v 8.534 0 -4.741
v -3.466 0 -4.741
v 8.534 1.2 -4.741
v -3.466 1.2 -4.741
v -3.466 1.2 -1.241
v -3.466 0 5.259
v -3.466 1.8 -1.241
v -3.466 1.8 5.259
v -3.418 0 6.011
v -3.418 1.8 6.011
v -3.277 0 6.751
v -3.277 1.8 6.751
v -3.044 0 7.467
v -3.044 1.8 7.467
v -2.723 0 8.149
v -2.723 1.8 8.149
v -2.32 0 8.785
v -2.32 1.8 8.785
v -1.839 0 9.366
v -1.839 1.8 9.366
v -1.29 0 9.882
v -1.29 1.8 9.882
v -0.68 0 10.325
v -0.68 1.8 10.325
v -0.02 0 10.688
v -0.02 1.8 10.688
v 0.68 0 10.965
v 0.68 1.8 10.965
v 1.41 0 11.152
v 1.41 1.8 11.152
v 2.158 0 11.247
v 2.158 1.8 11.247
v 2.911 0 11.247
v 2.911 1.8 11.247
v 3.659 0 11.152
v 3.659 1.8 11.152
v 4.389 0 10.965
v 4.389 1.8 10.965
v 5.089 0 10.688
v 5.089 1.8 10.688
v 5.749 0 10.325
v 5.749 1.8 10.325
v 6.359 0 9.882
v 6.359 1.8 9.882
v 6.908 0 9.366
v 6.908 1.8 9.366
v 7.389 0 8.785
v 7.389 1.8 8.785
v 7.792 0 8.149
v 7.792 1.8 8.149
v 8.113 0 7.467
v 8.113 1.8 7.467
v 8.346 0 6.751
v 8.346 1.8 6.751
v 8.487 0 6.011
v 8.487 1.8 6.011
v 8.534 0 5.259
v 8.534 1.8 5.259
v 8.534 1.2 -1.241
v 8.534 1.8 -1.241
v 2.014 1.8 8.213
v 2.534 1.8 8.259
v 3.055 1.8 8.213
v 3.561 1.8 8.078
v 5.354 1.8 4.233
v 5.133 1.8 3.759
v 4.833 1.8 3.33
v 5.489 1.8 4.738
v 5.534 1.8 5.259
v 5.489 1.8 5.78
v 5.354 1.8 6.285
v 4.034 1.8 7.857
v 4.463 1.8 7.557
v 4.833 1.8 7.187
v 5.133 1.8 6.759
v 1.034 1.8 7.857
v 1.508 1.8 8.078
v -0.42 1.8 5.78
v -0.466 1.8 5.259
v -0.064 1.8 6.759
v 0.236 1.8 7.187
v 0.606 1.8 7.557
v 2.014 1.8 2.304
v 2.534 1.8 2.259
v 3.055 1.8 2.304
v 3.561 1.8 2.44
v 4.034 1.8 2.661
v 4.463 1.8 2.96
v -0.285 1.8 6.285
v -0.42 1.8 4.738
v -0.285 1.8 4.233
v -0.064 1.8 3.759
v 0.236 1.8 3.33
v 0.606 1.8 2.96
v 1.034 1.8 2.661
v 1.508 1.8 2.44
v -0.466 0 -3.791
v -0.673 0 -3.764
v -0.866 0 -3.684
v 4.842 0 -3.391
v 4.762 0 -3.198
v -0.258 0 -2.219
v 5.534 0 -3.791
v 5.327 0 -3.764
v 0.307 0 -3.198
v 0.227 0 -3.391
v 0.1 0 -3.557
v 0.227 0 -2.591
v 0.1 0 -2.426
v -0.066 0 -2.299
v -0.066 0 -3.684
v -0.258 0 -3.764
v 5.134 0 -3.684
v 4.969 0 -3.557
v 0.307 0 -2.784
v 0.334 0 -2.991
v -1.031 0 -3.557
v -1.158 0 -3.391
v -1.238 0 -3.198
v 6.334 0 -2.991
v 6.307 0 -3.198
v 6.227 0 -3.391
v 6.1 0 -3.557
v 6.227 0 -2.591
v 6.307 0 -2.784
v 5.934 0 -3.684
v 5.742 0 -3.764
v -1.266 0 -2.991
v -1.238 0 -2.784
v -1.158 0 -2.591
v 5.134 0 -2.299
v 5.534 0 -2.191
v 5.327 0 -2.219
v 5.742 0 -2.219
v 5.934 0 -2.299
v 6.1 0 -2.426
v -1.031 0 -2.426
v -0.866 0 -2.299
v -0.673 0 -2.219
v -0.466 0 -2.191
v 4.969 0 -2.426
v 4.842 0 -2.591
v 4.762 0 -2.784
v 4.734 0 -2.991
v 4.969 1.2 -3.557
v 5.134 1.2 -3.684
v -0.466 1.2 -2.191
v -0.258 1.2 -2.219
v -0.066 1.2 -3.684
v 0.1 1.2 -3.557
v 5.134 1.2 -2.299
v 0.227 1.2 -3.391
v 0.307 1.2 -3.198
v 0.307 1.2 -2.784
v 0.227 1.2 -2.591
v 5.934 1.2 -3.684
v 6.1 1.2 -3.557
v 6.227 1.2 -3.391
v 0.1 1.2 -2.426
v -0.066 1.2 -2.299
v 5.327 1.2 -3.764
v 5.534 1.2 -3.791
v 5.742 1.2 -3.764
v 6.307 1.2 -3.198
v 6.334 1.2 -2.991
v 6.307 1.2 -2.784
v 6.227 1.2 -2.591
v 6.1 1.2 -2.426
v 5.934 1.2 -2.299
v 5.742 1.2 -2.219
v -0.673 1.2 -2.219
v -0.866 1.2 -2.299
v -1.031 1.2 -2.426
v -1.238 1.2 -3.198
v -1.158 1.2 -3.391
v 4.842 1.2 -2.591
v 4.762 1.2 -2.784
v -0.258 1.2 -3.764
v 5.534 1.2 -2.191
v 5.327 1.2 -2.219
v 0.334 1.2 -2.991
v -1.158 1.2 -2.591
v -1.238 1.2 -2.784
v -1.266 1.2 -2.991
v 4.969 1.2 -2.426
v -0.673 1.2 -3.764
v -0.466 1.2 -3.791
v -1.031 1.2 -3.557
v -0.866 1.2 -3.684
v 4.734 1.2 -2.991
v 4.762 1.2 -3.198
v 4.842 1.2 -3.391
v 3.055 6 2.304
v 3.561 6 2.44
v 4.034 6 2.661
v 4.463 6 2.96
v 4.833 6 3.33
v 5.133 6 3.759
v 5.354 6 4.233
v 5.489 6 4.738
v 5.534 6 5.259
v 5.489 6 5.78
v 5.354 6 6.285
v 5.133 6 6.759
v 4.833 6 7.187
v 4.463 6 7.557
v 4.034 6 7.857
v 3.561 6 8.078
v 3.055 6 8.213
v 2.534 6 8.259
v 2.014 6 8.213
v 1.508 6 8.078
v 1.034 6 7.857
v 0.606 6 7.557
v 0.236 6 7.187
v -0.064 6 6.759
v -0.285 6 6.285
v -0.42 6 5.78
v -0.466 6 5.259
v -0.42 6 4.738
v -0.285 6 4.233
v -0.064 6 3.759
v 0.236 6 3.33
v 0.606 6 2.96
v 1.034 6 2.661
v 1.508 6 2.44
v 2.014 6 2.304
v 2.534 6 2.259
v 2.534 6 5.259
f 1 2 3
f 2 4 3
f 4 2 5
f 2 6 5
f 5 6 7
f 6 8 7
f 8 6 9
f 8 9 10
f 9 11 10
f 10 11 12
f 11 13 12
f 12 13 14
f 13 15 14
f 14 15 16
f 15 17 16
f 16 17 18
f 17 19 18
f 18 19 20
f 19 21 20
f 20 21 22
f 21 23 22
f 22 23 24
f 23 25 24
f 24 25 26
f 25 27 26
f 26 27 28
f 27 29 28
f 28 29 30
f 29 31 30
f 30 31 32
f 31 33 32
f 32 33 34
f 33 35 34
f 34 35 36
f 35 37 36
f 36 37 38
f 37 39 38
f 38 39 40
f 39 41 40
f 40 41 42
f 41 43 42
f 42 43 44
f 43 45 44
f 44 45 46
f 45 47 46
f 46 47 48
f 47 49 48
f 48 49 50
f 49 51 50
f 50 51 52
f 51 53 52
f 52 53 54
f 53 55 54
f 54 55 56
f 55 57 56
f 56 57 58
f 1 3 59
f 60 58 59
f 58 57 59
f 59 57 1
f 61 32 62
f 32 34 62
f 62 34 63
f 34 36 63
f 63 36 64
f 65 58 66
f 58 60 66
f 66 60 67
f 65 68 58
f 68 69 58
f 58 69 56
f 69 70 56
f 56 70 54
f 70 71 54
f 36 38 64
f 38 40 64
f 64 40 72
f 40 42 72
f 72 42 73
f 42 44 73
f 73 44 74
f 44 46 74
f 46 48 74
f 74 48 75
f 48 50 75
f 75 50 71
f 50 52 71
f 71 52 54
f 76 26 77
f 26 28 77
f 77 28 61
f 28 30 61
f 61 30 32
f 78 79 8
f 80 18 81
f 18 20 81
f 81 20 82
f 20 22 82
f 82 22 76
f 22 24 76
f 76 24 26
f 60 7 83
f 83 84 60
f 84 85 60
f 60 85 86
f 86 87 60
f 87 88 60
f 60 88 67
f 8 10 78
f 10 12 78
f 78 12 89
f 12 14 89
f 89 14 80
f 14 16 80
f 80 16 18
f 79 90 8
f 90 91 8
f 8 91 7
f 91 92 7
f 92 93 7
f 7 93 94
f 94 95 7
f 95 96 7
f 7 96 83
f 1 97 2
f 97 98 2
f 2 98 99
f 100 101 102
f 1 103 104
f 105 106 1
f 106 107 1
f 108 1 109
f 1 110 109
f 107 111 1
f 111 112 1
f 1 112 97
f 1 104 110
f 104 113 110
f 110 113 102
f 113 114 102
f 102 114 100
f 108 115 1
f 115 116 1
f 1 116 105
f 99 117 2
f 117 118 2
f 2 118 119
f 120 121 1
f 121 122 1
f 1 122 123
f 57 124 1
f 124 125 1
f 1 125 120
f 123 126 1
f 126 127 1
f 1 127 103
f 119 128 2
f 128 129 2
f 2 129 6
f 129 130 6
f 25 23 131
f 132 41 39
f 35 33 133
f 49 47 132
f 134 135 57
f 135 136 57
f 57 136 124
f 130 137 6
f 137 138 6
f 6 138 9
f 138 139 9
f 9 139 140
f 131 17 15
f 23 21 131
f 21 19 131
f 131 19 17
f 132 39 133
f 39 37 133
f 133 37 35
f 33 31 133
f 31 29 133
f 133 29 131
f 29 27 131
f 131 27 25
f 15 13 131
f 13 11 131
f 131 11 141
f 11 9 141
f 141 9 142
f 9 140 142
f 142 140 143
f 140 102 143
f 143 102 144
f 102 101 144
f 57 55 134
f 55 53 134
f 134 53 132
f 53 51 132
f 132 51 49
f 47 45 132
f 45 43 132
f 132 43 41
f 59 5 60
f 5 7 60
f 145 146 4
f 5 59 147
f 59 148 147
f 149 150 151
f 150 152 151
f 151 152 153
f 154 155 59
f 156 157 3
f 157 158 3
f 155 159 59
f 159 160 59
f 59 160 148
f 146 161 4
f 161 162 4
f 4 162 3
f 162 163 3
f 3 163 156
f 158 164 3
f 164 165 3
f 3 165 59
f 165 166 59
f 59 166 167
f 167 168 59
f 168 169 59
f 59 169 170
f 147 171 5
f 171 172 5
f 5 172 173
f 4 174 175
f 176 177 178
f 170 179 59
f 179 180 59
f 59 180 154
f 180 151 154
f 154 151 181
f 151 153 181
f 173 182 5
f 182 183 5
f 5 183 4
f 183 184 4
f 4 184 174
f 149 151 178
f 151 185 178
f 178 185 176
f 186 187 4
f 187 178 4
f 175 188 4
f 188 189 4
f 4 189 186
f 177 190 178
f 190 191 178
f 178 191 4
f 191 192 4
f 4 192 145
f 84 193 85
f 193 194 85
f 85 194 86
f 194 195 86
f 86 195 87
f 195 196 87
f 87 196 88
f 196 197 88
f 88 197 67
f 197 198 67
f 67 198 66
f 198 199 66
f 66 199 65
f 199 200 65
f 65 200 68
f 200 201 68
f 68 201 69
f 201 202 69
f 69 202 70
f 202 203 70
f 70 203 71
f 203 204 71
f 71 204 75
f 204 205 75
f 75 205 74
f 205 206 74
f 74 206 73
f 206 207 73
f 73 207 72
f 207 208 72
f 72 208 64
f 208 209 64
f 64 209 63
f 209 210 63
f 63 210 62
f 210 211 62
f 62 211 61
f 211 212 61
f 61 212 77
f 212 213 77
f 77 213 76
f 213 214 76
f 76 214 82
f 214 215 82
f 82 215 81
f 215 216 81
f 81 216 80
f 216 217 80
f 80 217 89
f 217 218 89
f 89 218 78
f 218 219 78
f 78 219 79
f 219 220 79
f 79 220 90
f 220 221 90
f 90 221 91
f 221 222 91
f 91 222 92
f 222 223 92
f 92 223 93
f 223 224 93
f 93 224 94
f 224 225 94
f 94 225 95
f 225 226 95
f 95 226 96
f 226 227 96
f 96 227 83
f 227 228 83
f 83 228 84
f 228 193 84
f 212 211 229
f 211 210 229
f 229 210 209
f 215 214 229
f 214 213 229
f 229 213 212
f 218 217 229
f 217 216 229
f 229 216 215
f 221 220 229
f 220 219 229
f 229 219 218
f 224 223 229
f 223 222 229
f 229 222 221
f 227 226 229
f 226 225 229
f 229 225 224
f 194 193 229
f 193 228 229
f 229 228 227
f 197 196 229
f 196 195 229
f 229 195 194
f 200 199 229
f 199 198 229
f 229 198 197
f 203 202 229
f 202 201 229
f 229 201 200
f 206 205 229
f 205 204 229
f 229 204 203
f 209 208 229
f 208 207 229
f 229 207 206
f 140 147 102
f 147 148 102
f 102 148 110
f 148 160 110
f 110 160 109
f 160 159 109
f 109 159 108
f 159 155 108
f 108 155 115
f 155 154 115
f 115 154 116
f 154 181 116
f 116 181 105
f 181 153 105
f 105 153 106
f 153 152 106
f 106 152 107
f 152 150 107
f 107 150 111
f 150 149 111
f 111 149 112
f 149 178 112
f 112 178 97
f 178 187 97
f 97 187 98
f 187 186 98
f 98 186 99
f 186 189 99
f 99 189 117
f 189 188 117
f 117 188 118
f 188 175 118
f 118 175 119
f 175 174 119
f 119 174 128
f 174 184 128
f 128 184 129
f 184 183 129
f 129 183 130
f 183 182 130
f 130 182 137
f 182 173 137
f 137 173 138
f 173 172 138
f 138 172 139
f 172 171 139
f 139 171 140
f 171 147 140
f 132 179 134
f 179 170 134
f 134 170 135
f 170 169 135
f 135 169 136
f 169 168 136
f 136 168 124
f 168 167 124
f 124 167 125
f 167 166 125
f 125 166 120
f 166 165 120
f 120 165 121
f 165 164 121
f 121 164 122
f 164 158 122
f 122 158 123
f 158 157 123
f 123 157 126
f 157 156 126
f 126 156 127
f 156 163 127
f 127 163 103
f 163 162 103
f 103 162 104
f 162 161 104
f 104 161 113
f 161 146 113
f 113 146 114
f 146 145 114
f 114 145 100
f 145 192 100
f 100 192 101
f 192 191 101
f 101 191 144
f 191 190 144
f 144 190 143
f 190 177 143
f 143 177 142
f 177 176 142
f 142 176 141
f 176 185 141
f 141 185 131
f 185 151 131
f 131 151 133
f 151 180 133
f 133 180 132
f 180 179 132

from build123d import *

# Parameters (mm, degrees)
BOSS_EXTRUDE1_DEPTH = 1.8
SKETCH2_W           = 12
SKETCH2_H           = 3.5
CUT_EXTRUDE1_DEPTH  = 0.6
SKETCH3_R           = 3
BOSS_EXTRUDE2_DEPTH = 4.2
SKETCH4_R           = 0.8
CUT_EXTRUDE2_DEPTH  = 15.920922753


with BuildPart() as part:
    # Sketch1 → Boss-Extrude1 (new body)
    with BuildSketch(Plane(origin=(0, 0, 0), x_dir=(1, 0, 0), z_dir=(0, 1, 0))):
        with BuildLine():
            Line((-3.465517241, 4.74137931), (8.534482759, 4.74137931))
            Line((8.534482759, 4.74137931), (8.534482759, -5.25862069))
            ThreePointArc((8.534482759, -5.25862069), (2.534482759, -11.25862069), (-3.465517241, -5.25862069))
            Line((-3.465517241, -5.25862069), (-3.465517241, 4.74137931))
        make_face()
    extrude(amount=BOSS_EXTRUDE1_DEPTH)

    # Sketch2 → Cut-Extrude1 (cut)
    with BuildSketch(Plane(origin=(0, 1.8, 0), x_dir=(1, 0, 0), z_dir=(0, 1, 0))):
        with Locations((2.534482759, 2.99137931)):
            Rectangle(SKETCH2_W, SKETCH2_H)
    extrude(amount=-CUT_EXTRUDE1_DEPTH, mode=Mode.SUBTRACT)

    # Sketch3 → Boss-Extrude2 (add)
    with BuildSketch(Plane(origin=(0, 1.8, 0), x_dir=(1, 0, 0), z_dir=(0, 1, 0))):
        with Locations(Location((2.534482759, -5.25862069, 0), (0, 0, 270))):
            Circle(SKETCH3_R)
    extrude(amount=BOSS_EXTRUDE2_DEPTH)

    # Sketch4 → Cut-Extrude2 (cut, through all)
    with BuildSketch(Plane(origin=(0, 1.2, 0), x_dir=(1, 0, 0), z_dir=(0, 1, 0))):
        with Locations(Location((5.534482759, 2.99137931, 0), (0, 0, 270))):
            Circle(SKETCH4_R)
        with Locations(Location((-0.465517241, 2.99137931, 0), (0, 0, 90))):
            Circle(SKETCH4_R)
    extrude(amount=-CUT_EXTRUDE2_DEPTH, mode=Mode.SUBTRACT)


solid = part.part
